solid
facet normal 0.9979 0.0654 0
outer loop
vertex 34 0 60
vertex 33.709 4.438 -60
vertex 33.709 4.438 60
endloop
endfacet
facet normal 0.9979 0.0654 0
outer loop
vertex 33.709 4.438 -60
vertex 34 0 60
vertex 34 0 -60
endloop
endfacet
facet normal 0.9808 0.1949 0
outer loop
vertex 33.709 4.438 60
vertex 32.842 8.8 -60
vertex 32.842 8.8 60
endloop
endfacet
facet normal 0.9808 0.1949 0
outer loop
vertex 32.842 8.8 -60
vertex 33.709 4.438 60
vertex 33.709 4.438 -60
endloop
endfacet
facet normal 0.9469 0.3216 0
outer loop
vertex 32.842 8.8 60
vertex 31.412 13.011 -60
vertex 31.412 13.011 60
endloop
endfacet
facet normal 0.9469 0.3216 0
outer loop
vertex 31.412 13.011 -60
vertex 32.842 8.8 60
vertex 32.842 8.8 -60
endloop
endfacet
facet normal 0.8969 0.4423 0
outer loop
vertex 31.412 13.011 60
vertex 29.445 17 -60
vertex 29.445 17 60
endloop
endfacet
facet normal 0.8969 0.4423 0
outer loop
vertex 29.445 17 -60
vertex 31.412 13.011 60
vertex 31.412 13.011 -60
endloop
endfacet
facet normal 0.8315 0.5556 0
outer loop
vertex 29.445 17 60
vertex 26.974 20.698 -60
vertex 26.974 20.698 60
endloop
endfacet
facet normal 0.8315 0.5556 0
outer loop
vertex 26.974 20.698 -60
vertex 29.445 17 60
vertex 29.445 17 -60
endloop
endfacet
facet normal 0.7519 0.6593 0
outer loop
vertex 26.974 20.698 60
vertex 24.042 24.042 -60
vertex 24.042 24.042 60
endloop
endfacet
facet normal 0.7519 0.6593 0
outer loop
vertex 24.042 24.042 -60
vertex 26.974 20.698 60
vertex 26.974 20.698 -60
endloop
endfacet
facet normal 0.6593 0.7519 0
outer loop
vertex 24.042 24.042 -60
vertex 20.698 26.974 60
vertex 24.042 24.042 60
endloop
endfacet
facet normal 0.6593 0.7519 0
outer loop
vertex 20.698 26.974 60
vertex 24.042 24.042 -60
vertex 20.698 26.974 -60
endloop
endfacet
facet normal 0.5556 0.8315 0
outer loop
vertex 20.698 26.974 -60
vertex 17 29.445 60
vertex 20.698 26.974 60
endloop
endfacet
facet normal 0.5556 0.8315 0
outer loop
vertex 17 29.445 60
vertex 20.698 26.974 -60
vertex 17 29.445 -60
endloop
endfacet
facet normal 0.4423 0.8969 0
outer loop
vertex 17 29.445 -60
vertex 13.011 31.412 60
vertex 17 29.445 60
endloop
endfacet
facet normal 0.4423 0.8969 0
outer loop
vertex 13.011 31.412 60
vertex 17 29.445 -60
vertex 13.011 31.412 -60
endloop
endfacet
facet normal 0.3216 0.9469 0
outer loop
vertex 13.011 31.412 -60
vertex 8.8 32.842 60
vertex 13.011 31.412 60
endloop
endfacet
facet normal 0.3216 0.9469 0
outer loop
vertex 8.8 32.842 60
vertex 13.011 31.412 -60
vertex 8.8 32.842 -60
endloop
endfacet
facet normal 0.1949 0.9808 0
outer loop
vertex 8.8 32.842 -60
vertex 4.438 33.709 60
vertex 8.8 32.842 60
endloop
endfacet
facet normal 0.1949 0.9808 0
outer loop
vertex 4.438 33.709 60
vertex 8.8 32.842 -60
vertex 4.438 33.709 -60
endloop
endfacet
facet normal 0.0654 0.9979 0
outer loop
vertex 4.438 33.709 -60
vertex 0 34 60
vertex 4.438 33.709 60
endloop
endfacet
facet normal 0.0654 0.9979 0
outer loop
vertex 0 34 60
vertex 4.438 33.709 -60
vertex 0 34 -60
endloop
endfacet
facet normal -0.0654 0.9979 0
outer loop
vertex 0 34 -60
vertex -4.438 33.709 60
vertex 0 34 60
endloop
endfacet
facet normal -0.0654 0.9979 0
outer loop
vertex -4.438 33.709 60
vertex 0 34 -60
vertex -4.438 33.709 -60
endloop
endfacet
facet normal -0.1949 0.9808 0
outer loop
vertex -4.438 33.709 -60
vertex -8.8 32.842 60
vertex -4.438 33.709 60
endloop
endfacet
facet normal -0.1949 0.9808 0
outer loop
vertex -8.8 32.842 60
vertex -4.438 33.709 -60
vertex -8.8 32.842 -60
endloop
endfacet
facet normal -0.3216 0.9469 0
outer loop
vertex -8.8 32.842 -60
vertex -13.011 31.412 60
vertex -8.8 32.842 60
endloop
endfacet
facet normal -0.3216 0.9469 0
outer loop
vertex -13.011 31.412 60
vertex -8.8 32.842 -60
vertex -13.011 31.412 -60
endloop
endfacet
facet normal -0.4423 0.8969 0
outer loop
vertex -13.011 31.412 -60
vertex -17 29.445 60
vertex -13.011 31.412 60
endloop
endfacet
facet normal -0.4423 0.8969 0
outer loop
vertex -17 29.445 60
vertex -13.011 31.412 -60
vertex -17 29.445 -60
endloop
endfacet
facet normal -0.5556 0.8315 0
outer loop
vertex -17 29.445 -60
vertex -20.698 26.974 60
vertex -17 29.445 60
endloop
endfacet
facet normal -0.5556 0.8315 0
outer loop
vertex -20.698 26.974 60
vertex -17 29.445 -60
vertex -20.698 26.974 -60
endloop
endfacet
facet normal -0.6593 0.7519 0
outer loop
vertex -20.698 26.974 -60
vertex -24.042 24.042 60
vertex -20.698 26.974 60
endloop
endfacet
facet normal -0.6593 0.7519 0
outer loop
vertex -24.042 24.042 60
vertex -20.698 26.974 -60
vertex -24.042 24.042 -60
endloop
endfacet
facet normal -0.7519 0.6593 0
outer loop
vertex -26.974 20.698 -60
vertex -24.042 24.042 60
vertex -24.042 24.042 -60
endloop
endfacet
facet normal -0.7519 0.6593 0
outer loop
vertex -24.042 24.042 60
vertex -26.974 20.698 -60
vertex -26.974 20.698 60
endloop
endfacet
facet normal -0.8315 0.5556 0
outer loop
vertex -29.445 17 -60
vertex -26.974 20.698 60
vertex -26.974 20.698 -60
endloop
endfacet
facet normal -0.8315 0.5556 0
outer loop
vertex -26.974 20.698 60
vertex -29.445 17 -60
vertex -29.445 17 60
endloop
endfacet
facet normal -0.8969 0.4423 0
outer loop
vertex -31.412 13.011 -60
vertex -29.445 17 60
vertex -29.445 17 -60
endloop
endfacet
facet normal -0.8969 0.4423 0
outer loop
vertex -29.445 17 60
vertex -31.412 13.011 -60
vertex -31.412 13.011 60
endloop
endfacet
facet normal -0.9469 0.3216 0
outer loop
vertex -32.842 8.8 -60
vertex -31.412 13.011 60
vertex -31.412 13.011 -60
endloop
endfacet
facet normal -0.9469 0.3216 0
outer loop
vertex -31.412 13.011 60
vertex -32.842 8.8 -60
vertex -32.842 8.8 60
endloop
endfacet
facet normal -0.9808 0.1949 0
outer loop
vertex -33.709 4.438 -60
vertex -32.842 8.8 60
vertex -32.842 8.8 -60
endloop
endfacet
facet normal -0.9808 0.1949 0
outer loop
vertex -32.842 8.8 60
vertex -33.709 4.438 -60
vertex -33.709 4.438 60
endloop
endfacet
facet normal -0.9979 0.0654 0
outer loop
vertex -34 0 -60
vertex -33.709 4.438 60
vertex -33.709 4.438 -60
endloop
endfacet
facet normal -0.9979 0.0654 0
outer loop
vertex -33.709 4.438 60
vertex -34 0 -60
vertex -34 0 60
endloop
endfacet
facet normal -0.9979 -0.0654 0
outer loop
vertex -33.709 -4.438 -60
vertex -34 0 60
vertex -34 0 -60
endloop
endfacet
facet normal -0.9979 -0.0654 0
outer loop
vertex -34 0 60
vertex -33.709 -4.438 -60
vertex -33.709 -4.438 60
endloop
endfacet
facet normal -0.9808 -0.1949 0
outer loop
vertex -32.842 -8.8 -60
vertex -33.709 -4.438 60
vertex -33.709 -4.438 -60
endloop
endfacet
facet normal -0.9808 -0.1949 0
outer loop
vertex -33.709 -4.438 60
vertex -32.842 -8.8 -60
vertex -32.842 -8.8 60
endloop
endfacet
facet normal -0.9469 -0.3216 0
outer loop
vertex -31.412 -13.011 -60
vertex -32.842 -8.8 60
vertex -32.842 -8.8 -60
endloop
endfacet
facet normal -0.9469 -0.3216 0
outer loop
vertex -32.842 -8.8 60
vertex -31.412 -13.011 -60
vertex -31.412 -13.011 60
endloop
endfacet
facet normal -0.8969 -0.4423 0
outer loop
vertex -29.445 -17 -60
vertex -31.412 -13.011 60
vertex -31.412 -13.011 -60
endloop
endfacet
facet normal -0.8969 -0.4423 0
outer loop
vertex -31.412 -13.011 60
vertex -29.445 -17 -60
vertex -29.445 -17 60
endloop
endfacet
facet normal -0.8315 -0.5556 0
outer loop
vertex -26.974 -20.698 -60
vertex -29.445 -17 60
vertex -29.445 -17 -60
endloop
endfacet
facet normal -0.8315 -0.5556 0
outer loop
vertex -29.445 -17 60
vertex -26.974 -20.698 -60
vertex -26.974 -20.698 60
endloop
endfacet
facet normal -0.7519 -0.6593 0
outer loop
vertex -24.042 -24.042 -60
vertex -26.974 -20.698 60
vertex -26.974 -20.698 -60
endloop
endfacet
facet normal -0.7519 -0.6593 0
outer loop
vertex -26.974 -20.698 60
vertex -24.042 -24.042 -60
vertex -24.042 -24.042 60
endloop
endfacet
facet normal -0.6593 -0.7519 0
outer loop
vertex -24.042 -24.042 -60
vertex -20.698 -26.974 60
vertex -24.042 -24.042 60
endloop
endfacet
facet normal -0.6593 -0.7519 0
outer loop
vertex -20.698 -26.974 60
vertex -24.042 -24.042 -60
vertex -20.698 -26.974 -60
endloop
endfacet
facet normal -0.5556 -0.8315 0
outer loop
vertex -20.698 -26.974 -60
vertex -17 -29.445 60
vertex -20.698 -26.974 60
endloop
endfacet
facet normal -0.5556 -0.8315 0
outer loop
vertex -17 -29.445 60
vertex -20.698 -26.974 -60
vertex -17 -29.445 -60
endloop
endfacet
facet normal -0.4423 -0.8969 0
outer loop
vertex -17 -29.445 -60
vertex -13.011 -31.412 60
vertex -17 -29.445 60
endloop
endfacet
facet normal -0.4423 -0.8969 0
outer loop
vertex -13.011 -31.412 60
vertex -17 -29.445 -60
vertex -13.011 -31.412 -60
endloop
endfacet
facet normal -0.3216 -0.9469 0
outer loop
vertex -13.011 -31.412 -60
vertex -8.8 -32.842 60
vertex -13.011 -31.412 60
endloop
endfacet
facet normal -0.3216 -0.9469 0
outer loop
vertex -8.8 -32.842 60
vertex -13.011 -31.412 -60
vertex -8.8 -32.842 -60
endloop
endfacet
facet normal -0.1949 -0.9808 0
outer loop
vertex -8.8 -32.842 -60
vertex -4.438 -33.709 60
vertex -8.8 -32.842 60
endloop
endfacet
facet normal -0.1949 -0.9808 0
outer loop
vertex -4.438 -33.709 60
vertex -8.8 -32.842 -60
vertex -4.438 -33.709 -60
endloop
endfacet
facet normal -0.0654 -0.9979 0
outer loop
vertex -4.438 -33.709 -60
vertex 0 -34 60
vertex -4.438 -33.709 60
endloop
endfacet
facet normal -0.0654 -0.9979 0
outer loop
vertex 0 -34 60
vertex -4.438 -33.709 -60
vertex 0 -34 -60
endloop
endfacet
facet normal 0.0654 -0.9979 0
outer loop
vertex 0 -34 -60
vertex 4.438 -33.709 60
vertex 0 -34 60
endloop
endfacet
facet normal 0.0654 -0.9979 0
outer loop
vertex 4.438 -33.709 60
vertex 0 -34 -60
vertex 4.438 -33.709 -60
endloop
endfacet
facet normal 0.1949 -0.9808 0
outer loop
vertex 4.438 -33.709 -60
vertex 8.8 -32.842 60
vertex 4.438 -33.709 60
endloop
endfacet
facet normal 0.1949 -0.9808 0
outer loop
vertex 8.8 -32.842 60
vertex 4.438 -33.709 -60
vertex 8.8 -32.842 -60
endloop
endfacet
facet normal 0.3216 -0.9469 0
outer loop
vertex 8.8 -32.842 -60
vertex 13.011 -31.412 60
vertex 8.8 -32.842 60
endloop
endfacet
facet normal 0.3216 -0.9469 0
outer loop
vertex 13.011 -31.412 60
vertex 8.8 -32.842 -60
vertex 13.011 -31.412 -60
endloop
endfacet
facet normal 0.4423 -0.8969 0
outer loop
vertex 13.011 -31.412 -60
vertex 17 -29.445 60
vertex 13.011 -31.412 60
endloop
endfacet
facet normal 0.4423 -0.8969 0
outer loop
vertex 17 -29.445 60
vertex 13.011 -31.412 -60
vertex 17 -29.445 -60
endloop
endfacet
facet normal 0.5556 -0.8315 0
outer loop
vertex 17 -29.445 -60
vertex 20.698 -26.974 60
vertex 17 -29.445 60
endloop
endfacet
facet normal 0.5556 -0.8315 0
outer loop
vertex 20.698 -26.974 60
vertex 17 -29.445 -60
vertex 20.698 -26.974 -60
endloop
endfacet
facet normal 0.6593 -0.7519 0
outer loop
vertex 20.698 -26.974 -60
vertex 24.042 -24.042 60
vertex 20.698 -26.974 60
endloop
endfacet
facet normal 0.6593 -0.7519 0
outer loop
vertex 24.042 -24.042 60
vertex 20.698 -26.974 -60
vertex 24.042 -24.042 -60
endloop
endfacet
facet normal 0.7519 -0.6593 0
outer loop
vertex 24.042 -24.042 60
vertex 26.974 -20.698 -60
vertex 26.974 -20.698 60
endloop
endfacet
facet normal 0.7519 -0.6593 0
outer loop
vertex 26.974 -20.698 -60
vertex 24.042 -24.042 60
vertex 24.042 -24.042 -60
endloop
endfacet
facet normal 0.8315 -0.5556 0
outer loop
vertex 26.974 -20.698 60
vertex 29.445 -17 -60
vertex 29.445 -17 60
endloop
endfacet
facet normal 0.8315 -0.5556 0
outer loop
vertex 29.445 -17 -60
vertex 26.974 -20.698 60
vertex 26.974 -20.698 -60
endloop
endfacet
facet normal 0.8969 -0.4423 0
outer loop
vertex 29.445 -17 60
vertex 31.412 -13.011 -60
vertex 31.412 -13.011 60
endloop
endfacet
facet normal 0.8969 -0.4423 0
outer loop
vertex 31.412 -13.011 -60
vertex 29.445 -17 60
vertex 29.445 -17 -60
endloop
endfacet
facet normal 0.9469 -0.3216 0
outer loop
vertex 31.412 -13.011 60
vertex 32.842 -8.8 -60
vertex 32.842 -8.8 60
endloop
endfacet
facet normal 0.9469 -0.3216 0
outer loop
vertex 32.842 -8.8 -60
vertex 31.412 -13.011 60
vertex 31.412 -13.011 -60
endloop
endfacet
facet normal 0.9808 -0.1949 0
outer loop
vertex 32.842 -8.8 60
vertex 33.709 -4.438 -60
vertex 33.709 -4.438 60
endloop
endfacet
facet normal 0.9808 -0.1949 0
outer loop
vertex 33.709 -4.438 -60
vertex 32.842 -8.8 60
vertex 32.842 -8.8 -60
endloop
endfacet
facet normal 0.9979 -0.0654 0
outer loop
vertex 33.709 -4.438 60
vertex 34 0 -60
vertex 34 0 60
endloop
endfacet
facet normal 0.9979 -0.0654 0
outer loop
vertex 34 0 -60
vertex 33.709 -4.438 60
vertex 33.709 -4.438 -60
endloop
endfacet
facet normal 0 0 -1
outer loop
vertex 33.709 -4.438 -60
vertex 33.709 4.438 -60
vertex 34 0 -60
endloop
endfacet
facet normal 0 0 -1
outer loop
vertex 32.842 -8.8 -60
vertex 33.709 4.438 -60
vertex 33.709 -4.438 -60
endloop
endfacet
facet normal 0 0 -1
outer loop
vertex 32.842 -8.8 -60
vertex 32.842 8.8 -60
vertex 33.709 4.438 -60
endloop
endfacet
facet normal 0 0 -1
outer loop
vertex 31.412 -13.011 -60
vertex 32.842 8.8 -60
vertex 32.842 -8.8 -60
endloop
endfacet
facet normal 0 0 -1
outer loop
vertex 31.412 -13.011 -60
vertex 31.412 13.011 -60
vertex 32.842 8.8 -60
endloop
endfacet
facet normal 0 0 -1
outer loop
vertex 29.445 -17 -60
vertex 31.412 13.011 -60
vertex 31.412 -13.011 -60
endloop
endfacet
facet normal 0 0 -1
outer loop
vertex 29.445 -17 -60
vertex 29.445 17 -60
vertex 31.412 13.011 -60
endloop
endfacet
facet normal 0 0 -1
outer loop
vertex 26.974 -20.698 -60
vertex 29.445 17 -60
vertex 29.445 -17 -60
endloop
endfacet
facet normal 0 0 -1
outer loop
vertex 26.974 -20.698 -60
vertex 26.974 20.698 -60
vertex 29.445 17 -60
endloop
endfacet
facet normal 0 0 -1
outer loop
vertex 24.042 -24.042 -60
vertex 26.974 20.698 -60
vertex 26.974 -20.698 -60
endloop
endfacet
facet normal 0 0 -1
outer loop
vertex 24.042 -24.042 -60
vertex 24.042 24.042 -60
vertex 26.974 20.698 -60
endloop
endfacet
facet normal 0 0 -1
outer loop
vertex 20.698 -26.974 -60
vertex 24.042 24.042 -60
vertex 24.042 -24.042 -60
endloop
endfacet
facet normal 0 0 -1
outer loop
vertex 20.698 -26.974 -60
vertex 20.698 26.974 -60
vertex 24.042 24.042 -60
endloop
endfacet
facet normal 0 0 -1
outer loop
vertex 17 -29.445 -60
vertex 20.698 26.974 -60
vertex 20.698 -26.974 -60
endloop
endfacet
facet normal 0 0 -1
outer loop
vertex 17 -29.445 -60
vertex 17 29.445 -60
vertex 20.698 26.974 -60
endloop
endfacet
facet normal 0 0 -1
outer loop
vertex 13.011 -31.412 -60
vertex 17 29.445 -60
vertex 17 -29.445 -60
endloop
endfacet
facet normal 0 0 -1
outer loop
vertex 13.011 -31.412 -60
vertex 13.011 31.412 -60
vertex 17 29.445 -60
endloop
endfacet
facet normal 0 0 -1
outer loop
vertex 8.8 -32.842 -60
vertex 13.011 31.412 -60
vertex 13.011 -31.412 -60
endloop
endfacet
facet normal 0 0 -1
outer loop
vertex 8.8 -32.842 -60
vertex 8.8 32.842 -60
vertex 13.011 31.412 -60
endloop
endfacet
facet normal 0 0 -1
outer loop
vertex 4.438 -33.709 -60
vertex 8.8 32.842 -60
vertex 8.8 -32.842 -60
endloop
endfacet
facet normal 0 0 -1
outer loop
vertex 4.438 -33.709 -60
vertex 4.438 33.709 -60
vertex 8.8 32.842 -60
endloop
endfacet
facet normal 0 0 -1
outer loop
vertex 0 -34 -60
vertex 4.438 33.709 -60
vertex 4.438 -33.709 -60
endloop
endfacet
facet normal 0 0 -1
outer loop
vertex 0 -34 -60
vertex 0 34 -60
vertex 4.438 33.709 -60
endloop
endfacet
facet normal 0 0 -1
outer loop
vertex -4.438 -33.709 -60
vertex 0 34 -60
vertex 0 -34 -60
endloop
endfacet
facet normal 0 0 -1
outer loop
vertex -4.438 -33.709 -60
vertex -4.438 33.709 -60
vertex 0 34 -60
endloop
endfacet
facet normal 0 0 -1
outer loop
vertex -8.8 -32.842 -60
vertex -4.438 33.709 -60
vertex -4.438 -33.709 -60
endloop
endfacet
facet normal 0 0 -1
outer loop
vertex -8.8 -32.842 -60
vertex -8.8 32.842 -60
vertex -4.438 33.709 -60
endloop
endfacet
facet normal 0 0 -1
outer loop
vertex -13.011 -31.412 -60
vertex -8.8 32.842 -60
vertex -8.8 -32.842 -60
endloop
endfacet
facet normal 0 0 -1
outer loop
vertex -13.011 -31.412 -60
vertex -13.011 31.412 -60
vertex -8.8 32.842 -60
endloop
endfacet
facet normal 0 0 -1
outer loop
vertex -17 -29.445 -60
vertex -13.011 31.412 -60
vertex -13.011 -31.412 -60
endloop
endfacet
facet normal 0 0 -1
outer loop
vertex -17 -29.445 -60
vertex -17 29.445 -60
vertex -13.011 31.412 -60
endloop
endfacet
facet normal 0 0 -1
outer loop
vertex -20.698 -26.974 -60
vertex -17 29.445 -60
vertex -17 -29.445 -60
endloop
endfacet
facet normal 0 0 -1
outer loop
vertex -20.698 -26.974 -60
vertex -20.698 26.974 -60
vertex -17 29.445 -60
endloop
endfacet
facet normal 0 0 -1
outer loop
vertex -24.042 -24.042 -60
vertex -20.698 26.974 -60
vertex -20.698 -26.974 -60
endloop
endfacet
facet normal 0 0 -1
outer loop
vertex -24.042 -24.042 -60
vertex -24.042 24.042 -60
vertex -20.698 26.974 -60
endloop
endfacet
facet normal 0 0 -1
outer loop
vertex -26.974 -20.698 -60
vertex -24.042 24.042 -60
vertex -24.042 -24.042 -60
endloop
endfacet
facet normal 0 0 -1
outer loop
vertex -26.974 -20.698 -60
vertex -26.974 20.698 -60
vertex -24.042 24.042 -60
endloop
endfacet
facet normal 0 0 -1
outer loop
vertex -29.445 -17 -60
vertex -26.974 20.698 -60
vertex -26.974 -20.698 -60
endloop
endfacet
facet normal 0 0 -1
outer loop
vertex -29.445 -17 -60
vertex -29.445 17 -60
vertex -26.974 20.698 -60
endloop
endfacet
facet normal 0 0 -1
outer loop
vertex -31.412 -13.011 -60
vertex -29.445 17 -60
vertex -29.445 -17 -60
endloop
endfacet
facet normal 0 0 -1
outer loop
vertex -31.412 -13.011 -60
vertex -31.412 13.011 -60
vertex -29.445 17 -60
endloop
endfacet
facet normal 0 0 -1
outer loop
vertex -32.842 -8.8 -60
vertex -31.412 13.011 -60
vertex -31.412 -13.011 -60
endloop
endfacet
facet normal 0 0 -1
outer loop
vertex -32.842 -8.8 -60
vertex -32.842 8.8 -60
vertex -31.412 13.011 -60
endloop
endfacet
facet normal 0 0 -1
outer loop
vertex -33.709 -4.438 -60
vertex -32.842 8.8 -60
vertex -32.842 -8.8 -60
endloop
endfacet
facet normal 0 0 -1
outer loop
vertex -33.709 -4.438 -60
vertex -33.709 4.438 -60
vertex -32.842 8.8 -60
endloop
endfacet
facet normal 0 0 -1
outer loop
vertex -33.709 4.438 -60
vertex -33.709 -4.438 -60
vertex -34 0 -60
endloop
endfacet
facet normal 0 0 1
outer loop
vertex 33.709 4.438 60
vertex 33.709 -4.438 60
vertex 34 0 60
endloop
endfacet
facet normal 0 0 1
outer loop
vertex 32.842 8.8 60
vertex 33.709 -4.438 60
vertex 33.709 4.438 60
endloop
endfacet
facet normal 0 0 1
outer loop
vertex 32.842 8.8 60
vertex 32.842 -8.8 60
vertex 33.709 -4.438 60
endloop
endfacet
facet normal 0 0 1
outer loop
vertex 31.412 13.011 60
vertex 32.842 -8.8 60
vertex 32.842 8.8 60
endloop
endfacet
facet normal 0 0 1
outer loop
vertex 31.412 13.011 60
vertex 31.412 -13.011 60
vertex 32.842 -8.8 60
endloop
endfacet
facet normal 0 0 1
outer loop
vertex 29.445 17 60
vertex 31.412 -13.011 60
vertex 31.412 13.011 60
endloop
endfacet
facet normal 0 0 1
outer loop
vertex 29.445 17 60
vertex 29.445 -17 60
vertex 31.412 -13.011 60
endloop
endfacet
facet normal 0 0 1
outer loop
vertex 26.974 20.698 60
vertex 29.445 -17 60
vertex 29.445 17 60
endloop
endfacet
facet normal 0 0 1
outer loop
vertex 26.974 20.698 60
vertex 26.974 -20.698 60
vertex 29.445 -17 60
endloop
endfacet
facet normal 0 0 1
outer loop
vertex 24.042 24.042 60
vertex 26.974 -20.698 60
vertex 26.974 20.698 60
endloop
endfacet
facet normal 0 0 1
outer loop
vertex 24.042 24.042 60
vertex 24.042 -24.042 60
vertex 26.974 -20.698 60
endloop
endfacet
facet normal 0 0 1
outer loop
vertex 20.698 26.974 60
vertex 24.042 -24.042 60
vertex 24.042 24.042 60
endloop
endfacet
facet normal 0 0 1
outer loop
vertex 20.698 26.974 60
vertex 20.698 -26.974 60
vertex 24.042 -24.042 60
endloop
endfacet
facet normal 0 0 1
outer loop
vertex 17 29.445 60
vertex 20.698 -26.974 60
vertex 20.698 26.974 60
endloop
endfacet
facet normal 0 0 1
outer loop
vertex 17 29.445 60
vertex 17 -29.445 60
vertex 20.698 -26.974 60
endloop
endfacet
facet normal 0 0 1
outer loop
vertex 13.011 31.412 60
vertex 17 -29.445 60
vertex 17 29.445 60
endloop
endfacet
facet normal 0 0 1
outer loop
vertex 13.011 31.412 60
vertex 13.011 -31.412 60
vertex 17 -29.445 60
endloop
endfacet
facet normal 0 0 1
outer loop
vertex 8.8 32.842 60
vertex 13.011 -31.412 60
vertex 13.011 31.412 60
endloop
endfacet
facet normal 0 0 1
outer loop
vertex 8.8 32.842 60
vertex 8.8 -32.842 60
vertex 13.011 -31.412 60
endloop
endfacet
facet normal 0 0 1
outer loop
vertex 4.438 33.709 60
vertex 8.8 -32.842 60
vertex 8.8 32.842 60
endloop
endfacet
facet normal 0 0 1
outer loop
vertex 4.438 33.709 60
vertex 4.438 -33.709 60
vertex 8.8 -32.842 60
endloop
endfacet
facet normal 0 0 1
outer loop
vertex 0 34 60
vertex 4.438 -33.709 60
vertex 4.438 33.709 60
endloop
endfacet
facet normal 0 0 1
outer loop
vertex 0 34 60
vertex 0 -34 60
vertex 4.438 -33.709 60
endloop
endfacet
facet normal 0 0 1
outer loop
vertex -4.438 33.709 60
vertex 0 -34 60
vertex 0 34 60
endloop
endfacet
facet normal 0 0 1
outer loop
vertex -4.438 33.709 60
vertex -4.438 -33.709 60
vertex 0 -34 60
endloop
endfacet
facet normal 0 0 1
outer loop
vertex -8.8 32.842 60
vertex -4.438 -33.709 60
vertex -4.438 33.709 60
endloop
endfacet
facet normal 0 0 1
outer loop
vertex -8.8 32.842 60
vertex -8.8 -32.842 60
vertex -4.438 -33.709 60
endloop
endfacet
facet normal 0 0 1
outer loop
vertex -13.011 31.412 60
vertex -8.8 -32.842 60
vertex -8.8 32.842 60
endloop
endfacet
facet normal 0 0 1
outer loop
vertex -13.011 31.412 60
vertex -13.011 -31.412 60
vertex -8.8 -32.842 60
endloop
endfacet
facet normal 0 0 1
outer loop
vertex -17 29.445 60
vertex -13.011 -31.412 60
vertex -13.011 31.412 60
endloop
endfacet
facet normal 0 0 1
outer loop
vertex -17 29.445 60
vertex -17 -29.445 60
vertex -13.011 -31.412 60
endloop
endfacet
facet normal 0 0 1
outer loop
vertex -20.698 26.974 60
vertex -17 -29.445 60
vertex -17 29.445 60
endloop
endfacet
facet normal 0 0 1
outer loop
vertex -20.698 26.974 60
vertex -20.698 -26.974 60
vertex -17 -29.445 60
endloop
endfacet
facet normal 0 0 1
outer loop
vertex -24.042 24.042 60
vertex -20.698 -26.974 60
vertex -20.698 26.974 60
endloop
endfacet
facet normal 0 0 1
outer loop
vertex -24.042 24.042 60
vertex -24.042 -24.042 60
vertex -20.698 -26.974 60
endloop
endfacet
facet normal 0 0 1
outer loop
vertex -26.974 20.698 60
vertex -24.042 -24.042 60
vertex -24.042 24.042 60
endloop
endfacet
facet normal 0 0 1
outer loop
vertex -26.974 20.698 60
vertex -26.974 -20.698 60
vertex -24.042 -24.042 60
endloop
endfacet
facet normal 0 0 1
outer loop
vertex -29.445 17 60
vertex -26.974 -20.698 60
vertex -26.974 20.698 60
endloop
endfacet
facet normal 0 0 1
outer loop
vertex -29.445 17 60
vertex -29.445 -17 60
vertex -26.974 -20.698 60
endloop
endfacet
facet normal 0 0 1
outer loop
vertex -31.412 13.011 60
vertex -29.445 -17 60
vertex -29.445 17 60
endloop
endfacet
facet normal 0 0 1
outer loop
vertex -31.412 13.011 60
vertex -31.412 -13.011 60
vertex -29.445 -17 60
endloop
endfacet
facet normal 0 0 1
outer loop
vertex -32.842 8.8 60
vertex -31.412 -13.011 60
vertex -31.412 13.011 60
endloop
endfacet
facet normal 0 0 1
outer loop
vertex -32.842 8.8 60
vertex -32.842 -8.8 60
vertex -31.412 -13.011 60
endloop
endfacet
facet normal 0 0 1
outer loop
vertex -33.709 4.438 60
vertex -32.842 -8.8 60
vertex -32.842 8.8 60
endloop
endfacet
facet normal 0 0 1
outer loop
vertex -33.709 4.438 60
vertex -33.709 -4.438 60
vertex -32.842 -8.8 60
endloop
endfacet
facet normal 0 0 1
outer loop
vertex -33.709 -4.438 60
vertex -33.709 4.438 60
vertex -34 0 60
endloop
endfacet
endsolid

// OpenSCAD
// ========================================
// a cylinder with radius 34 mm and height 120 mm
// NeuroCAD canonical IR; dimensions are millimetres
// ========================================
$fn = 48;

cylinder(r=34, h=120, center=true);
